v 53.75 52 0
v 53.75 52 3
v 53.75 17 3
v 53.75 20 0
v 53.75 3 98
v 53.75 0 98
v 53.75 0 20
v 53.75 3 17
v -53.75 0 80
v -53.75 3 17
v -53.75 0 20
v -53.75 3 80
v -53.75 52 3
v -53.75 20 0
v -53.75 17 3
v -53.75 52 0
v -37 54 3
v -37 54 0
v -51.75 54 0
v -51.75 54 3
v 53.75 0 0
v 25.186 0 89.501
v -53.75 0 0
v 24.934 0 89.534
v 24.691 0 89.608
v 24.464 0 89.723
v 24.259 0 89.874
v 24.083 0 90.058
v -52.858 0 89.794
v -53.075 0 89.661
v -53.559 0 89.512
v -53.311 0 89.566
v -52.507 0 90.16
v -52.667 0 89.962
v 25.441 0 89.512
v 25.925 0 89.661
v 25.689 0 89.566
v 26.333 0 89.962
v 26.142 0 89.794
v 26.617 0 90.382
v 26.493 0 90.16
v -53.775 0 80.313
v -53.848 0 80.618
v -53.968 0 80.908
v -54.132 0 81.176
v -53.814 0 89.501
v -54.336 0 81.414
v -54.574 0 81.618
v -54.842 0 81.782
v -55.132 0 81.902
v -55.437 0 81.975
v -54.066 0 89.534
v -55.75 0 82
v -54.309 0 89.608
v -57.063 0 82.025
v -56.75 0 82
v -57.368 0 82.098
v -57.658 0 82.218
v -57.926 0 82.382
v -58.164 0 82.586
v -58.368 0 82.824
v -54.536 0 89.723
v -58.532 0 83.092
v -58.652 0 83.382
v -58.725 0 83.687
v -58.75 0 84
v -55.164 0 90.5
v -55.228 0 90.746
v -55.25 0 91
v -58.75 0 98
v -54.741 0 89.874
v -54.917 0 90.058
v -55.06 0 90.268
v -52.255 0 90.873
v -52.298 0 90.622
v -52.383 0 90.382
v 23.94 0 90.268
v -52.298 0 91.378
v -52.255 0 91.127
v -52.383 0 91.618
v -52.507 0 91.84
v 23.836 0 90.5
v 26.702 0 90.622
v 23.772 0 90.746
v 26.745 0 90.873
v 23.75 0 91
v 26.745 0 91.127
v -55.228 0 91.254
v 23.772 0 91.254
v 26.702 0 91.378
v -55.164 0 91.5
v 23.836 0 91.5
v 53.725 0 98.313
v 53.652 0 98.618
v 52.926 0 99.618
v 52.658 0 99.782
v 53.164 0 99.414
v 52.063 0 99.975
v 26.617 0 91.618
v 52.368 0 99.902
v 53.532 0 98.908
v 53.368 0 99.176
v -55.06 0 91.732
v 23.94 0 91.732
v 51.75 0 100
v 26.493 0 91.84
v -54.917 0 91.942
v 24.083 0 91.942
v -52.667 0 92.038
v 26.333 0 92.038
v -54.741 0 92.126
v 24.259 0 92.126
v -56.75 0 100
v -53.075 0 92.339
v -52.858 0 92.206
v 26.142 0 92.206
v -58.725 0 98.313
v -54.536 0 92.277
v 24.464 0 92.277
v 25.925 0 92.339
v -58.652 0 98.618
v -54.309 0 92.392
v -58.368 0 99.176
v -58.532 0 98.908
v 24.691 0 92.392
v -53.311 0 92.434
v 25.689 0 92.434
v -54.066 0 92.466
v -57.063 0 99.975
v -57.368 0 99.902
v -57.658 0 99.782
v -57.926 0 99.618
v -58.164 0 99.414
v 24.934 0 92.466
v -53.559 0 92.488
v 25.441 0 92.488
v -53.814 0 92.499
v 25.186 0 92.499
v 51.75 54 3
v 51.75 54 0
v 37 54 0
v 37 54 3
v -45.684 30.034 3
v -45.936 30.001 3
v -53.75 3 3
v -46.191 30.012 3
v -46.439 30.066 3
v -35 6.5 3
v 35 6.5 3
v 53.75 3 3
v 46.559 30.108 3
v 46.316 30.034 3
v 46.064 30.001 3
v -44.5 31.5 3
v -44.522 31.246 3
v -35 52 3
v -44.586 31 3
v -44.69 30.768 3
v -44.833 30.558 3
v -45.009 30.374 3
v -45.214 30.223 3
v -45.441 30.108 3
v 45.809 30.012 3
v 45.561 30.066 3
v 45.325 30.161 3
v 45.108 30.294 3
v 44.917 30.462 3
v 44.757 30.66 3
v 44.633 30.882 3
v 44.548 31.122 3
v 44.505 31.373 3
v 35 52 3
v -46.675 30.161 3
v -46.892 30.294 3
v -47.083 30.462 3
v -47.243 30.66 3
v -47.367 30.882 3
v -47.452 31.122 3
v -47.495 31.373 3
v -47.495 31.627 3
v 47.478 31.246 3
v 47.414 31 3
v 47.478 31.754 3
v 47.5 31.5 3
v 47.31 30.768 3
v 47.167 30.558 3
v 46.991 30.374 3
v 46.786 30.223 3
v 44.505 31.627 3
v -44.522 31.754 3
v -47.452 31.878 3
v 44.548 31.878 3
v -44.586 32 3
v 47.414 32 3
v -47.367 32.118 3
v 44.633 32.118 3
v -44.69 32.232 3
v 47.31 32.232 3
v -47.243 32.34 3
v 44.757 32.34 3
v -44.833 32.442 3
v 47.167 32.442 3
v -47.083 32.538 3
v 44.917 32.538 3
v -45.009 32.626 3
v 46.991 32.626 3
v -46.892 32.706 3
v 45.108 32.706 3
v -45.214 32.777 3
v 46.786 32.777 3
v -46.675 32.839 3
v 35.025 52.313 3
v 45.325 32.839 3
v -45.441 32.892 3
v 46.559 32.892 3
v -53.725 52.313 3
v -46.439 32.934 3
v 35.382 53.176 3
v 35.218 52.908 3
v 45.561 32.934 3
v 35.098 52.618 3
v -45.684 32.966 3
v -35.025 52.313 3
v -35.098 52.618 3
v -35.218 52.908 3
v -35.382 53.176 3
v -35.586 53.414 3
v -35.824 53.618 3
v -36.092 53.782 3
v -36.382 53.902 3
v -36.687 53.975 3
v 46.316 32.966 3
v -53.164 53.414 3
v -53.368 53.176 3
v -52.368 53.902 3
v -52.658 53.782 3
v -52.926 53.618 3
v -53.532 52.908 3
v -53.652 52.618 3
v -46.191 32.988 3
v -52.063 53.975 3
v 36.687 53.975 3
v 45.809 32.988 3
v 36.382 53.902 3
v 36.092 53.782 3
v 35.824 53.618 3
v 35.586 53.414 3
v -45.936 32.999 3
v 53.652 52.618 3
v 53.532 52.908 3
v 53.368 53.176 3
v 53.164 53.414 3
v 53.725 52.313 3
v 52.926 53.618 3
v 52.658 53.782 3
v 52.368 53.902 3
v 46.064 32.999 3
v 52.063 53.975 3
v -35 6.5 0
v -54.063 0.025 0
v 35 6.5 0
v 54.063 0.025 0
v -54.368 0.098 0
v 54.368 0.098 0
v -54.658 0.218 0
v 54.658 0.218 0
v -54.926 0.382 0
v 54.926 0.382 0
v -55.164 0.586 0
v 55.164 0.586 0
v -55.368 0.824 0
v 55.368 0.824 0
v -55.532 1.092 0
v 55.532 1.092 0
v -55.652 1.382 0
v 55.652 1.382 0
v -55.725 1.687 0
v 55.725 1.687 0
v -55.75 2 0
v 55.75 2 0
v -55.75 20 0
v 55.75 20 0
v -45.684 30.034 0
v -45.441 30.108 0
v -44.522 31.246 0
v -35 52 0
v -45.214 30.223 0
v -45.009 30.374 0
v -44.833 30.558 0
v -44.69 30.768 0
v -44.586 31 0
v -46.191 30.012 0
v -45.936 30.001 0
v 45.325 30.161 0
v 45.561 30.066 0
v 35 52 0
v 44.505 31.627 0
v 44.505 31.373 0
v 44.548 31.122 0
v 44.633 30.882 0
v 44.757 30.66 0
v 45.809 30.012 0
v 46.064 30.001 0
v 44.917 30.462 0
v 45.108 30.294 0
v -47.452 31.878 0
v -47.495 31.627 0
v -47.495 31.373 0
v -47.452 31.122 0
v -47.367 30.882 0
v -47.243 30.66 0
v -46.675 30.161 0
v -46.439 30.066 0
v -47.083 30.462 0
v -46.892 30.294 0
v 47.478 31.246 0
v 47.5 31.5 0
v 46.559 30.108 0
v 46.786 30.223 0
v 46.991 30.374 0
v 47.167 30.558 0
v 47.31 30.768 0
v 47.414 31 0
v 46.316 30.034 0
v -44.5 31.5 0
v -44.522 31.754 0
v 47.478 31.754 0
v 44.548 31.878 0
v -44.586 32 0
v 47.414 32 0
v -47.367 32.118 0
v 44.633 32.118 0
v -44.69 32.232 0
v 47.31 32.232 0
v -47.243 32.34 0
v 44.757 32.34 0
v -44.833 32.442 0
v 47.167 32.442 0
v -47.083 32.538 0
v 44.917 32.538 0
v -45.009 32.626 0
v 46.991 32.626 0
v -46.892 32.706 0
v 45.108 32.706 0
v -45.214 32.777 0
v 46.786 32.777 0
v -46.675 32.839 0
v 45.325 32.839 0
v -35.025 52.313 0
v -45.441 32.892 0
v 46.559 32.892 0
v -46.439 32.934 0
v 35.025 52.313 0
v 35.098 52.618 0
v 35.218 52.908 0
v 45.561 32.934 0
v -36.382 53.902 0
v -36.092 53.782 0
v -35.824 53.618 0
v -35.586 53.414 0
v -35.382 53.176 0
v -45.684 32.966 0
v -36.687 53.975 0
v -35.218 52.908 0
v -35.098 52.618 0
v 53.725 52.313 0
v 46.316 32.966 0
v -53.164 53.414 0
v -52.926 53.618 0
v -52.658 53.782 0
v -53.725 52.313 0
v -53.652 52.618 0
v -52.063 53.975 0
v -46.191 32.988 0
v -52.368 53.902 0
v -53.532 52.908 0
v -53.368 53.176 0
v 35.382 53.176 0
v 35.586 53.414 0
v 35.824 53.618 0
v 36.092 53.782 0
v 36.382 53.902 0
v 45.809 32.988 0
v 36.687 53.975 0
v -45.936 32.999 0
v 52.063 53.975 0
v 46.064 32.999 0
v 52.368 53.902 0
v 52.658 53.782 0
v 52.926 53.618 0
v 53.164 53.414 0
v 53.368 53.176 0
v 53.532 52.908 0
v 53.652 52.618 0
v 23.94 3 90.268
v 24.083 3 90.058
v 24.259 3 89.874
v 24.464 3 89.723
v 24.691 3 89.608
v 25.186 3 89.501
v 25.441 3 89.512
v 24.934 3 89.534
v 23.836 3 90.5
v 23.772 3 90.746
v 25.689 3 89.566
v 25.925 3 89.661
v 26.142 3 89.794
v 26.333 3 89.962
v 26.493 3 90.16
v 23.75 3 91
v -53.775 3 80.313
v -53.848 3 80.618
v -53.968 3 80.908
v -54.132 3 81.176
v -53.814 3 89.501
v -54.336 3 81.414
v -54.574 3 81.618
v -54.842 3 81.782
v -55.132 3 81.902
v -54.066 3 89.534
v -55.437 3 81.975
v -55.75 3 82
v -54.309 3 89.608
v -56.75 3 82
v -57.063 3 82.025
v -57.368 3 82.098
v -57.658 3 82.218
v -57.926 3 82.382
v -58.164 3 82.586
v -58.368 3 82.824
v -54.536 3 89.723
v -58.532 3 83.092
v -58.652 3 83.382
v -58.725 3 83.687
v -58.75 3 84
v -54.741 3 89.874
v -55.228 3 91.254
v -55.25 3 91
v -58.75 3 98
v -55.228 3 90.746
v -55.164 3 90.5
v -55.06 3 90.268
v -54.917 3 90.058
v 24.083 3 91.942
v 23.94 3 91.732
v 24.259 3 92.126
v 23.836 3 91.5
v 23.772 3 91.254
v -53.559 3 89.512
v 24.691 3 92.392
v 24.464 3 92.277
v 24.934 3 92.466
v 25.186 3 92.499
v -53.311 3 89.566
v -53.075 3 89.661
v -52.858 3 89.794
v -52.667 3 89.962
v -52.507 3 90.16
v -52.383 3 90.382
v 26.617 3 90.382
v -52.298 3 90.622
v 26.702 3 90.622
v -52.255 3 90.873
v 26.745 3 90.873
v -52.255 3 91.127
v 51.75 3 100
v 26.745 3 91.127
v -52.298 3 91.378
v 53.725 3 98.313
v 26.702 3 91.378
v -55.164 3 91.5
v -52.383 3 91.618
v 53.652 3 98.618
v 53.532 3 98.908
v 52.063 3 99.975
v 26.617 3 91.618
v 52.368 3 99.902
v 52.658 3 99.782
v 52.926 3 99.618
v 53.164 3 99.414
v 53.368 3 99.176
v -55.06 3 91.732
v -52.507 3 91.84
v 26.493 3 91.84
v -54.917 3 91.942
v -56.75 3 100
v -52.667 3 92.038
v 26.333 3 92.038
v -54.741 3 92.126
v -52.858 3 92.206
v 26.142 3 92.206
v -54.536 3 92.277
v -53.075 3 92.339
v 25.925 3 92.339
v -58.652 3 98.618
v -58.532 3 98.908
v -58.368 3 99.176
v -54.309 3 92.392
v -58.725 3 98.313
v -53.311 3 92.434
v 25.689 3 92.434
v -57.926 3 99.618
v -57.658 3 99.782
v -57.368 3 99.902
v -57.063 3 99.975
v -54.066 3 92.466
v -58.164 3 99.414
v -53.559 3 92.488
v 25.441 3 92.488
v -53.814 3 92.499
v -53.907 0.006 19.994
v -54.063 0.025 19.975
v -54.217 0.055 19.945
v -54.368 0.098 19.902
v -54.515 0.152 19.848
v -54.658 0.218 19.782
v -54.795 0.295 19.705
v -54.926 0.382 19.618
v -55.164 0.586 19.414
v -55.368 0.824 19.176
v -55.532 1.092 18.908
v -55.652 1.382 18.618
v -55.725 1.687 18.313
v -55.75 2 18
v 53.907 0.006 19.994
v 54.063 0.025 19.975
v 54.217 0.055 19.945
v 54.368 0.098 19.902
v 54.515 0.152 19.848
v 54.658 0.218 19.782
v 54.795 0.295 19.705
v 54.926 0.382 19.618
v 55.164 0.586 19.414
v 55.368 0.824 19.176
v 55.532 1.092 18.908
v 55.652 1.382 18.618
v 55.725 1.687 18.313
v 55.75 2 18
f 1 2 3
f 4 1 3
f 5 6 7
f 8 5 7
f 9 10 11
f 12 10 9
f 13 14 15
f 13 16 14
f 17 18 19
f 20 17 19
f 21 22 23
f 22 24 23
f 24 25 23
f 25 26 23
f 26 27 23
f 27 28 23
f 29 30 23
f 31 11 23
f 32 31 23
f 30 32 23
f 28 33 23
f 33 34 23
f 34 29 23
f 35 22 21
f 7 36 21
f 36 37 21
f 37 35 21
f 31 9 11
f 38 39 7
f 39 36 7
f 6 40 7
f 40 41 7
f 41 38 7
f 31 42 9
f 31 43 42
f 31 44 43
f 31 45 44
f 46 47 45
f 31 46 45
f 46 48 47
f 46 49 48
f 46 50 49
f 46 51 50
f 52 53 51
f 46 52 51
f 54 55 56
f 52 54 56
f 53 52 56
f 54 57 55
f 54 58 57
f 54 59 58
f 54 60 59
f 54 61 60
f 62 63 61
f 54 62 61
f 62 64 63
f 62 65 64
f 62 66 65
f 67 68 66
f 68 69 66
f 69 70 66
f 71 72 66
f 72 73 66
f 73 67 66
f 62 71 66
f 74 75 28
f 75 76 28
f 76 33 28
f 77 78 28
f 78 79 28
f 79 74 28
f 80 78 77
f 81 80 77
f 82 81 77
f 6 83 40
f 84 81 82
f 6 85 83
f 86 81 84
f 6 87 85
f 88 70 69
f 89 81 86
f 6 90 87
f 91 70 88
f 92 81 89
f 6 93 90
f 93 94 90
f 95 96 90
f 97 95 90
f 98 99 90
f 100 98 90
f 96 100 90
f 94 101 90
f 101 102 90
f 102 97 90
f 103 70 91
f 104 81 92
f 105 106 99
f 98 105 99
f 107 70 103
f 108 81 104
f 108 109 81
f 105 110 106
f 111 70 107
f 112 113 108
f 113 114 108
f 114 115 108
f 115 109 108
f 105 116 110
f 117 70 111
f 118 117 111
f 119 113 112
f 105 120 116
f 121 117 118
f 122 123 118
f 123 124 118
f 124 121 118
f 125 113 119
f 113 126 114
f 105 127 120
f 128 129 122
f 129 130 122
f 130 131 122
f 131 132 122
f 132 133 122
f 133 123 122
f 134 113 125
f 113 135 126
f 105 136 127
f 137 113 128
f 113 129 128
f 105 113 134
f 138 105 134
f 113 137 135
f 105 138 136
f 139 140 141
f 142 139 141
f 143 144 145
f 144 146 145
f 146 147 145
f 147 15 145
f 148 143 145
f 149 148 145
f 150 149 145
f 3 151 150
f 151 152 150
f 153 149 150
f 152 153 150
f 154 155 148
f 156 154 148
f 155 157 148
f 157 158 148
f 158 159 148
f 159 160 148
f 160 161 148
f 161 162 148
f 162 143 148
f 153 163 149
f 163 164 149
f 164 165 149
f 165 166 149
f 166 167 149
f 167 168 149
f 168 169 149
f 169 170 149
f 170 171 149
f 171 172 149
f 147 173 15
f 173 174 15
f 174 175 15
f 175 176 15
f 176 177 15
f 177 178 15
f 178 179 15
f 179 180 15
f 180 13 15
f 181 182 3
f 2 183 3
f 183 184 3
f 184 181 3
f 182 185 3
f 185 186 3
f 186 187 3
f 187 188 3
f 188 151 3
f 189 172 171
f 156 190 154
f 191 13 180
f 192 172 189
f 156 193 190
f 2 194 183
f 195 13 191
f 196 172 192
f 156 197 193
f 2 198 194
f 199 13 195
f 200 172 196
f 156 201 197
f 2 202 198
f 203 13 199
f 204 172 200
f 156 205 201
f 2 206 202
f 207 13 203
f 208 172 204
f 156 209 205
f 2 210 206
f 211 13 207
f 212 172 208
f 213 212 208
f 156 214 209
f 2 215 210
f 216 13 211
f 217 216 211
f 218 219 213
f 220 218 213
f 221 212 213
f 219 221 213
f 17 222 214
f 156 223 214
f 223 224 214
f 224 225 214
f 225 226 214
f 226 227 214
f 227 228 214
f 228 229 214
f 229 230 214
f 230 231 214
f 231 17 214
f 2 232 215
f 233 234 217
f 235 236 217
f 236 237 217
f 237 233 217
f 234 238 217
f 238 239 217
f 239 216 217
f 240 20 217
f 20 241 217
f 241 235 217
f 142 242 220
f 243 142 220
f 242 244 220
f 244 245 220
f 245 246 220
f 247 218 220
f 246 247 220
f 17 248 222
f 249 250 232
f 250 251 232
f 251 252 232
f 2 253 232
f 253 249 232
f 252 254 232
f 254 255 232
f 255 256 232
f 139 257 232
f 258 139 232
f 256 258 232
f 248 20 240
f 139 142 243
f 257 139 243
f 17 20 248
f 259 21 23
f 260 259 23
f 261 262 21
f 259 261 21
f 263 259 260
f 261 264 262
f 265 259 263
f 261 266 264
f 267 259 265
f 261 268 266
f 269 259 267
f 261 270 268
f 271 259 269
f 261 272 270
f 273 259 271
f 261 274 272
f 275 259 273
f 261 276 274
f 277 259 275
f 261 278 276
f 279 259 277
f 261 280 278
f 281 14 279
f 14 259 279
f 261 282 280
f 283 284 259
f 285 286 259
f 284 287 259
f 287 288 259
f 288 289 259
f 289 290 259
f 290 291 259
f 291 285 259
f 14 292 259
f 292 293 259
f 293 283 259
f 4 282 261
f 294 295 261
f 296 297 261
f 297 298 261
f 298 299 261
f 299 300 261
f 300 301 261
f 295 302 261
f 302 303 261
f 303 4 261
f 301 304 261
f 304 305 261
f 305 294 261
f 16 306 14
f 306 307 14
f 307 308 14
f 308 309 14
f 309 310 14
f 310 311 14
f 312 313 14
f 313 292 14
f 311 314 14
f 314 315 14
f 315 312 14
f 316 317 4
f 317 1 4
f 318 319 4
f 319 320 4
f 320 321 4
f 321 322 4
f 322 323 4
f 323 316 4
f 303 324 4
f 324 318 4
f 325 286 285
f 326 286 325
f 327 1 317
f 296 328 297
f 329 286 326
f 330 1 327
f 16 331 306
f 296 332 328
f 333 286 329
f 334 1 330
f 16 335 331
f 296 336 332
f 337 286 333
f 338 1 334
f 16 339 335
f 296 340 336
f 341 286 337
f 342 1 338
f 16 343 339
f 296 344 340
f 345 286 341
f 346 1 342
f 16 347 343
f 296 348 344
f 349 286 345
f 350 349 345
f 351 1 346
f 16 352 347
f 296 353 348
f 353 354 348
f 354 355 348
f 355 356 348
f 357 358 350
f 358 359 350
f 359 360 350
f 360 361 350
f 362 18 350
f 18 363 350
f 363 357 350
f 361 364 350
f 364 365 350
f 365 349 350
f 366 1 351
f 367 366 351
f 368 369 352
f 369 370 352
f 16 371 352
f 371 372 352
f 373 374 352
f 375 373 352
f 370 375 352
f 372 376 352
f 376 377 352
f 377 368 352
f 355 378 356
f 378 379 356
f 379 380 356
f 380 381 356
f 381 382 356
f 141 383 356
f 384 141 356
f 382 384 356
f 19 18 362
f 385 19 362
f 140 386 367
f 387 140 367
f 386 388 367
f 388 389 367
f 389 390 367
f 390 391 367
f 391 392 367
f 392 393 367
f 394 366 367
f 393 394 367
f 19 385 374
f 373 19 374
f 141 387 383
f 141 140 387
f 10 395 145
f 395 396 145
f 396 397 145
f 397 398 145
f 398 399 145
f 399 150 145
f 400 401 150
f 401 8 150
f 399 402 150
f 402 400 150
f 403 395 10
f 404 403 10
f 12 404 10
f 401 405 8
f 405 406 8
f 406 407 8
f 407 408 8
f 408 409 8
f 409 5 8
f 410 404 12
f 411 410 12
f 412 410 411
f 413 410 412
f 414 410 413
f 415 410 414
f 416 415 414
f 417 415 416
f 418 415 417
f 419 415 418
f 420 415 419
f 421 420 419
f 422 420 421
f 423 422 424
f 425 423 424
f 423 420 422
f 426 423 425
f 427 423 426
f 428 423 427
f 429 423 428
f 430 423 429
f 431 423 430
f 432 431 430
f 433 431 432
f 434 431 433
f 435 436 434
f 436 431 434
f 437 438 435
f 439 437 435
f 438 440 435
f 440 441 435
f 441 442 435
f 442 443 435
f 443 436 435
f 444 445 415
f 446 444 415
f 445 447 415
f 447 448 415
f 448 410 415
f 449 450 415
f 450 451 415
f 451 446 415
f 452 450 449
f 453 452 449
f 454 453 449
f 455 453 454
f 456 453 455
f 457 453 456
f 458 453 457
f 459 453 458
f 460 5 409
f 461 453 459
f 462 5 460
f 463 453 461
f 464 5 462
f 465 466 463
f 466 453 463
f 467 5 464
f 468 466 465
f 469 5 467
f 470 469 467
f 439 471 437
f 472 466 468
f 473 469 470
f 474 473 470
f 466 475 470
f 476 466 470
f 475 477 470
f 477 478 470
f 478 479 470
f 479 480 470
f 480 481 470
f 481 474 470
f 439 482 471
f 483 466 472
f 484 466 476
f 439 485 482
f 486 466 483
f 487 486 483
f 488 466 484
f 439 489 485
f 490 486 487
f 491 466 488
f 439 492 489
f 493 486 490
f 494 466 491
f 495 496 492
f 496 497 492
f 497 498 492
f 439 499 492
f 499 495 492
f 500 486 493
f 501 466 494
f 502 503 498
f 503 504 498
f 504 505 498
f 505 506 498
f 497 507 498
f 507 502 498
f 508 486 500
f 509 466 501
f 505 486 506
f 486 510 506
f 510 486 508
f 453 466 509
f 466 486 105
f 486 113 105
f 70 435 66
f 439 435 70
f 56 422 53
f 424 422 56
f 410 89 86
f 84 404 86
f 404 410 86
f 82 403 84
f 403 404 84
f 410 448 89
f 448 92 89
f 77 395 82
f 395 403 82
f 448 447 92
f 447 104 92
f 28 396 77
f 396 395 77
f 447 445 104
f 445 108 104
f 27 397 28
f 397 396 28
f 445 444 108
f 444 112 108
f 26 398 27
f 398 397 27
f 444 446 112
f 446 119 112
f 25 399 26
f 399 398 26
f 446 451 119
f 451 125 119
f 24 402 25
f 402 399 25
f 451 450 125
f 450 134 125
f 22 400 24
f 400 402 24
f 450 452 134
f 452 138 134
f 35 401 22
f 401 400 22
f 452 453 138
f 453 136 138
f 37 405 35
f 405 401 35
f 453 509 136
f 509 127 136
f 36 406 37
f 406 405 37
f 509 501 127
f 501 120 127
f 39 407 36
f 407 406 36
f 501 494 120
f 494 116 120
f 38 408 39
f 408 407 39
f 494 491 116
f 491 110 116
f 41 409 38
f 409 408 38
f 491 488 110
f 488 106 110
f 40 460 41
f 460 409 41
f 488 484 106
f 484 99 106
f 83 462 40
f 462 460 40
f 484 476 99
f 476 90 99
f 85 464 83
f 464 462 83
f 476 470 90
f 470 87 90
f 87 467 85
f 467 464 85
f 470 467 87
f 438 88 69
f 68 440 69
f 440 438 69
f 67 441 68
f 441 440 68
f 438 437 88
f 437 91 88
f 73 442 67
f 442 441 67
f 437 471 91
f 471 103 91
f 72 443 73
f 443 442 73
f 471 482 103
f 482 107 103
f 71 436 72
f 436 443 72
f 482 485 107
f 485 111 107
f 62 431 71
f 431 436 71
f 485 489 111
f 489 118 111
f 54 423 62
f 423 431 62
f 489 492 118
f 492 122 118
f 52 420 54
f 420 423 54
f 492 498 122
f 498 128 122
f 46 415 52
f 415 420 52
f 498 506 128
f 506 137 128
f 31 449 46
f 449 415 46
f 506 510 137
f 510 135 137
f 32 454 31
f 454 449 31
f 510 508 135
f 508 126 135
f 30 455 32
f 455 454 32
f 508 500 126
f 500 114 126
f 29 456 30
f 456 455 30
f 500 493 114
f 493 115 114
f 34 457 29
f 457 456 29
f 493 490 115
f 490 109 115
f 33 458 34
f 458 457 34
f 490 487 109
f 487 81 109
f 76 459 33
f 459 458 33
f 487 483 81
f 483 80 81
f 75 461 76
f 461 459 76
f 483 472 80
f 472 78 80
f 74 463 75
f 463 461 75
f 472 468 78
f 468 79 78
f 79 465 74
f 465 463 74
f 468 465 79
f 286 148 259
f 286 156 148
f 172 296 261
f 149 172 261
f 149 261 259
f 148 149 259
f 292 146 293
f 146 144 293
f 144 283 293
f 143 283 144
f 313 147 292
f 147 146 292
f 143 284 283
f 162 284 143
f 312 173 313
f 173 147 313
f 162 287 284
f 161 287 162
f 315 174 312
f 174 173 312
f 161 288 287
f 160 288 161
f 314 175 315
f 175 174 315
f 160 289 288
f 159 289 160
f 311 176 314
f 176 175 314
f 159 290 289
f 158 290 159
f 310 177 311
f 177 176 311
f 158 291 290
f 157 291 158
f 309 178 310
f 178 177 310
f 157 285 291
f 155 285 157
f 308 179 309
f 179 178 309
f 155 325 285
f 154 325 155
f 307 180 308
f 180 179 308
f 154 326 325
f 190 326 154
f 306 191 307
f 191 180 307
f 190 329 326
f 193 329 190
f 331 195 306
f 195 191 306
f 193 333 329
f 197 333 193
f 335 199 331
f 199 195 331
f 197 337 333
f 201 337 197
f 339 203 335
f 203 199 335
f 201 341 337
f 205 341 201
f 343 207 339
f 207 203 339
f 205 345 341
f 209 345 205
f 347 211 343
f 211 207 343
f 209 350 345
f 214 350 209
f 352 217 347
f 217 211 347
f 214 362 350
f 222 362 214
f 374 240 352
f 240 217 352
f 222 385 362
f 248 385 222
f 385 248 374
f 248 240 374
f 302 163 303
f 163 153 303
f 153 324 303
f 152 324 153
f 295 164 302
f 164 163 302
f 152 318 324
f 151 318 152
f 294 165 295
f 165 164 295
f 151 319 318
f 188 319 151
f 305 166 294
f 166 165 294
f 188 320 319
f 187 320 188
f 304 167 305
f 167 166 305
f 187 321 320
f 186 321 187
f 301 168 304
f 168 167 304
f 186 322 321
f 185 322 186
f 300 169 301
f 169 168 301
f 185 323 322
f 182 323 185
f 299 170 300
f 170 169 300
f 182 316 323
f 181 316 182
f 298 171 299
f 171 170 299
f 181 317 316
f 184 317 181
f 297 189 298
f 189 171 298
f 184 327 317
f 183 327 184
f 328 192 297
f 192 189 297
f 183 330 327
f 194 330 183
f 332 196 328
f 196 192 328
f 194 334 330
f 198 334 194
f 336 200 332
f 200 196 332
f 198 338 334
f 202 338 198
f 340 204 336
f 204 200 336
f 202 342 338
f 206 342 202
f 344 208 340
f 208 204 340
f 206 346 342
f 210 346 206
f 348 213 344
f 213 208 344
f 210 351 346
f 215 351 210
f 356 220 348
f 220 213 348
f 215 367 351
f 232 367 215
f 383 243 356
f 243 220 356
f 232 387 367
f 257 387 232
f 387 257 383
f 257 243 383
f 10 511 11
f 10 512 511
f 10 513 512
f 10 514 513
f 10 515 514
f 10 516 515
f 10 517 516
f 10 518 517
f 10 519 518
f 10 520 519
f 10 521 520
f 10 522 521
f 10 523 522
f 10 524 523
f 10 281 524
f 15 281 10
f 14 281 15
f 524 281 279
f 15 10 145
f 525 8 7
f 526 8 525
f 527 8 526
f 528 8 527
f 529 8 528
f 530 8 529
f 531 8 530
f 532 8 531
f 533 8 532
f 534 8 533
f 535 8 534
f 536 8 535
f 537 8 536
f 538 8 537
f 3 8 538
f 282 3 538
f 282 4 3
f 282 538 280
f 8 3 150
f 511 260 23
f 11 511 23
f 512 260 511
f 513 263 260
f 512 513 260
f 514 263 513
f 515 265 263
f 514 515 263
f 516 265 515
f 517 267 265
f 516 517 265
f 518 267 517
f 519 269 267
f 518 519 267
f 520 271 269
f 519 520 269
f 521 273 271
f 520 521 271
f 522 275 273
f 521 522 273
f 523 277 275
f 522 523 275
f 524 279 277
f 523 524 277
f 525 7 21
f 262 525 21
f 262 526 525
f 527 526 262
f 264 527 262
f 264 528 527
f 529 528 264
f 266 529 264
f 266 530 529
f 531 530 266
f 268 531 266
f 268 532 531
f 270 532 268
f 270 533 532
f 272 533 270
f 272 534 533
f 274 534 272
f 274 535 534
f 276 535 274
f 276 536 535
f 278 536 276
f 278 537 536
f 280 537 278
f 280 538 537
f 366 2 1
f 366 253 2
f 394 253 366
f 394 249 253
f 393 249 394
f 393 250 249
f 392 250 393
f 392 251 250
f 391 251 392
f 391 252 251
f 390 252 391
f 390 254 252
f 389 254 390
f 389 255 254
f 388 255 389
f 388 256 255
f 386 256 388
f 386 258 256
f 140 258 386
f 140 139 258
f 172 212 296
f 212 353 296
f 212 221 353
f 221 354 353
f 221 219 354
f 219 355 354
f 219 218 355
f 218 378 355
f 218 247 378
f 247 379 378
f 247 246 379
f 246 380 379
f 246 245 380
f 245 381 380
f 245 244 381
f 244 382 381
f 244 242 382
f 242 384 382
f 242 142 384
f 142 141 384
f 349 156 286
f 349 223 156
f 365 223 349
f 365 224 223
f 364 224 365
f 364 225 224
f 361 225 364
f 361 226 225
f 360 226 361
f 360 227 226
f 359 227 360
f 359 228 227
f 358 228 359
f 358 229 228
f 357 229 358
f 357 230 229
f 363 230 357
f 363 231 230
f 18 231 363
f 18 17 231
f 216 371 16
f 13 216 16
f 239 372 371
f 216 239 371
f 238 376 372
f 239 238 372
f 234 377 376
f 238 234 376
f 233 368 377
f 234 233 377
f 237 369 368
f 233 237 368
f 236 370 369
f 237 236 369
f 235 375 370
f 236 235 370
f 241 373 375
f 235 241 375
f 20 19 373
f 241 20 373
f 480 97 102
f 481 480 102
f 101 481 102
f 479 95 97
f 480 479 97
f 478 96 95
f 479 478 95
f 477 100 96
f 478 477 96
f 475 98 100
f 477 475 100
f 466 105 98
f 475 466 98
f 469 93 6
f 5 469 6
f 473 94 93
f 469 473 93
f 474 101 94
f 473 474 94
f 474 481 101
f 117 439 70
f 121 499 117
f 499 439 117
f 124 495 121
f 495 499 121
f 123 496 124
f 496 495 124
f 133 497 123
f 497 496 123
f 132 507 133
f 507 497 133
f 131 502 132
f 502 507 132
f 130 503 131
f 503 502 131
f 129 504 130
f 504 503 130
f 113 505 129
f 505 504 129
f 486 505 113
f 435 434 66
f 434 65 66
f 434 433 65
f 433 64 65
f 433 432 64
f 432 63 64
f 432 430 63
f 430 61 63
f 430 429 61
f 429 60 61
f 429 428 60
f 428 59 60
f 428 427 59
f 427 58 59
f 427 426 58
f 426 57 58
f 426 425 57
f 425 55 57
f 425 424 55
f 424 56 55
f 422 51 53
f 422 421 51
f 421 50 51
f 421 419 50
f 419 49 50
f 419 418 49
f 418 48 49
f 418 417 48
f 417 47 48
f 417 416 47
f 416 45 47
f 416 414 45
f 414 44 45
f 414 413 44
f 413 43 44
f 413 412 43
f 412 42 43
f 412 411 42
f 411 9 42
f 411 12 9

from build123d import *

# Parameters (mm, degrees)
SKETCH_1_W          = 107.5
SKETCH_1_H          = 54
EXTRUDE_1_DEPTH     = 3
SKETCH_2_W          = 107.5
SKETCH_2_H          = 3
EXTRUDE_2_DEPTH     = 97
SKETCH_4_W          = 5
SKETCH_4_H          = 18
EXTRUDE_3_DEPTH     = 3
SKETCH_5_R          = 1.5
CUT_EXTRUDE_1_DEPTH = 3
SKETCH_6_W          = 70
SKETCH_6_H          = 47.5
CUT_EXTRUDE_2_DEPTH = 3
SKETCH_7_R          = 1.5
CUT_EXTRUDE_3_DEPTH = 3
EXTRUDE_4_DEPTH     = 2
EXTRUDE_5_DEPTH     = 2
FILLET_1_R          = 2
FILLET_2_R          = 2


with BuildPart() as part:
    # 草图1 → 凸台-拉伸1 (new body)
    with BuildSketch(Plane.XY):
        with Locations((0, 27)):
            Rectangle(SKETCH_1_W, SKETCH_1_H)
    extrude(amount=EXTRUDE_1_DEPTH)

    # 草图2 → 凸台-拉伸2 (add)
    with BuildSketch(Plane.XY.offset(3)):
        with Locations((0, 1.5)):
            Rectangle(SKETCH_2_W, SKETCH_2_H)
    extrude(amount=EXTRUDE_2_DEPTH)

    # 草图4 → 凸台-拉伸3 (add)
    with BuildSketch(Plane(origin=(0, 3, 0), x_dir=(1, 0, 0), z_dir=(0, 1, 0))):
        with Locations((-56.25, -91)):
            Rectangle(SKETCH_4_W, SKETCH_4_H)
    extrude(amount=-EXTRUDE_3_DEPTH)

    # 草图5 → 切除-拉伸1 (cut)
    with BuildSketch(Plane(origin=(0, 3, 0), x_dir=(1, 0, 0), z_dir=(0, 1, 0))):
        with Locations(Location((-53.75, -91, 0), (0, 0, 180))):
            Circle(SKETCH_5_R)
        with Locations(Location((25.25, -91, 0), (0, 0, 180))):
            Circle(SKETCH_5_R)
    extrude(amount=-CUT_EXTRUDE_1_DEPTH, mode=Mode.SUBTRACT)

    # 草图6 → 切除-拉伸2 (cut)
    with BuildSketch(Plane.XY.offset(3)):
        with Locations((0, 30.25)):
            Rectangle(SKETCH_6_W, SKETCH_6_H)
    extrude(amount=-CUT_EXTRUDE_2_DEPTH, mode=Mode.SUBTRACT)

    # 草图7 → 切除-拉伸3 (cut)
    with BuildSketch(Plane.XY.offset(3)):
        with Locations((46, 31.5)):
            Circle(SKETCH_7_R)
        with Locations((-46, 31.5)):
            Circle(SKETCH_7_R)
    extrude(amount=-CUT_EXTRUDE_3_DEPTH, mode=Mode.SUBTRACT)

    # 草图8 → 凸台-拉伸4 (add)
    with BuildSketch(Plane.ZY.offset(53.75)):
        Polygon((0, 0), (20, 0), (0, 20), align=None)
    extrude(amount=EXTRUDE_4_DEPTH)

    # 草图9 → 凸台-拉伸5 (add)
    with BuildSketch(Plane(origin=(53.75, 0, 0), x_dir=(0, 0, -1), z_dir=(1, 0, 0))):
        Polygon((0, 0), (0, 20), (-20, 0), align=None)
    extrude(amount=EXTRUDE_5_DEPTH)

    # 圆角1
    fillet_1_edges = [part.edges().sort_by_distance(p)[0] for p in [
        (-55.75, 0, 10),
        (55.75, 0, 10),
        (53.75, 54, 1.5),
        (35, 54, 1.5),
        (-35, 54, 1.5),
        (-53.75, 54, 1.5),
    ]]
    fillet(fillet_1_edges, radius=FILLET_1_R)

    # 圆角2
    fillet_2_edges = [part.edges().sort_by_distance(p)[0] for p in [
        (53.75, 1.5, 100),
        (-53.75, 1.5, 82),
        (-58.75, 1.5, 100),
        (-58.75, 1.5, 82),
    ]]
    fillet(fillet_2_edges, radius=FILLET_2_R)


solid = part.part
